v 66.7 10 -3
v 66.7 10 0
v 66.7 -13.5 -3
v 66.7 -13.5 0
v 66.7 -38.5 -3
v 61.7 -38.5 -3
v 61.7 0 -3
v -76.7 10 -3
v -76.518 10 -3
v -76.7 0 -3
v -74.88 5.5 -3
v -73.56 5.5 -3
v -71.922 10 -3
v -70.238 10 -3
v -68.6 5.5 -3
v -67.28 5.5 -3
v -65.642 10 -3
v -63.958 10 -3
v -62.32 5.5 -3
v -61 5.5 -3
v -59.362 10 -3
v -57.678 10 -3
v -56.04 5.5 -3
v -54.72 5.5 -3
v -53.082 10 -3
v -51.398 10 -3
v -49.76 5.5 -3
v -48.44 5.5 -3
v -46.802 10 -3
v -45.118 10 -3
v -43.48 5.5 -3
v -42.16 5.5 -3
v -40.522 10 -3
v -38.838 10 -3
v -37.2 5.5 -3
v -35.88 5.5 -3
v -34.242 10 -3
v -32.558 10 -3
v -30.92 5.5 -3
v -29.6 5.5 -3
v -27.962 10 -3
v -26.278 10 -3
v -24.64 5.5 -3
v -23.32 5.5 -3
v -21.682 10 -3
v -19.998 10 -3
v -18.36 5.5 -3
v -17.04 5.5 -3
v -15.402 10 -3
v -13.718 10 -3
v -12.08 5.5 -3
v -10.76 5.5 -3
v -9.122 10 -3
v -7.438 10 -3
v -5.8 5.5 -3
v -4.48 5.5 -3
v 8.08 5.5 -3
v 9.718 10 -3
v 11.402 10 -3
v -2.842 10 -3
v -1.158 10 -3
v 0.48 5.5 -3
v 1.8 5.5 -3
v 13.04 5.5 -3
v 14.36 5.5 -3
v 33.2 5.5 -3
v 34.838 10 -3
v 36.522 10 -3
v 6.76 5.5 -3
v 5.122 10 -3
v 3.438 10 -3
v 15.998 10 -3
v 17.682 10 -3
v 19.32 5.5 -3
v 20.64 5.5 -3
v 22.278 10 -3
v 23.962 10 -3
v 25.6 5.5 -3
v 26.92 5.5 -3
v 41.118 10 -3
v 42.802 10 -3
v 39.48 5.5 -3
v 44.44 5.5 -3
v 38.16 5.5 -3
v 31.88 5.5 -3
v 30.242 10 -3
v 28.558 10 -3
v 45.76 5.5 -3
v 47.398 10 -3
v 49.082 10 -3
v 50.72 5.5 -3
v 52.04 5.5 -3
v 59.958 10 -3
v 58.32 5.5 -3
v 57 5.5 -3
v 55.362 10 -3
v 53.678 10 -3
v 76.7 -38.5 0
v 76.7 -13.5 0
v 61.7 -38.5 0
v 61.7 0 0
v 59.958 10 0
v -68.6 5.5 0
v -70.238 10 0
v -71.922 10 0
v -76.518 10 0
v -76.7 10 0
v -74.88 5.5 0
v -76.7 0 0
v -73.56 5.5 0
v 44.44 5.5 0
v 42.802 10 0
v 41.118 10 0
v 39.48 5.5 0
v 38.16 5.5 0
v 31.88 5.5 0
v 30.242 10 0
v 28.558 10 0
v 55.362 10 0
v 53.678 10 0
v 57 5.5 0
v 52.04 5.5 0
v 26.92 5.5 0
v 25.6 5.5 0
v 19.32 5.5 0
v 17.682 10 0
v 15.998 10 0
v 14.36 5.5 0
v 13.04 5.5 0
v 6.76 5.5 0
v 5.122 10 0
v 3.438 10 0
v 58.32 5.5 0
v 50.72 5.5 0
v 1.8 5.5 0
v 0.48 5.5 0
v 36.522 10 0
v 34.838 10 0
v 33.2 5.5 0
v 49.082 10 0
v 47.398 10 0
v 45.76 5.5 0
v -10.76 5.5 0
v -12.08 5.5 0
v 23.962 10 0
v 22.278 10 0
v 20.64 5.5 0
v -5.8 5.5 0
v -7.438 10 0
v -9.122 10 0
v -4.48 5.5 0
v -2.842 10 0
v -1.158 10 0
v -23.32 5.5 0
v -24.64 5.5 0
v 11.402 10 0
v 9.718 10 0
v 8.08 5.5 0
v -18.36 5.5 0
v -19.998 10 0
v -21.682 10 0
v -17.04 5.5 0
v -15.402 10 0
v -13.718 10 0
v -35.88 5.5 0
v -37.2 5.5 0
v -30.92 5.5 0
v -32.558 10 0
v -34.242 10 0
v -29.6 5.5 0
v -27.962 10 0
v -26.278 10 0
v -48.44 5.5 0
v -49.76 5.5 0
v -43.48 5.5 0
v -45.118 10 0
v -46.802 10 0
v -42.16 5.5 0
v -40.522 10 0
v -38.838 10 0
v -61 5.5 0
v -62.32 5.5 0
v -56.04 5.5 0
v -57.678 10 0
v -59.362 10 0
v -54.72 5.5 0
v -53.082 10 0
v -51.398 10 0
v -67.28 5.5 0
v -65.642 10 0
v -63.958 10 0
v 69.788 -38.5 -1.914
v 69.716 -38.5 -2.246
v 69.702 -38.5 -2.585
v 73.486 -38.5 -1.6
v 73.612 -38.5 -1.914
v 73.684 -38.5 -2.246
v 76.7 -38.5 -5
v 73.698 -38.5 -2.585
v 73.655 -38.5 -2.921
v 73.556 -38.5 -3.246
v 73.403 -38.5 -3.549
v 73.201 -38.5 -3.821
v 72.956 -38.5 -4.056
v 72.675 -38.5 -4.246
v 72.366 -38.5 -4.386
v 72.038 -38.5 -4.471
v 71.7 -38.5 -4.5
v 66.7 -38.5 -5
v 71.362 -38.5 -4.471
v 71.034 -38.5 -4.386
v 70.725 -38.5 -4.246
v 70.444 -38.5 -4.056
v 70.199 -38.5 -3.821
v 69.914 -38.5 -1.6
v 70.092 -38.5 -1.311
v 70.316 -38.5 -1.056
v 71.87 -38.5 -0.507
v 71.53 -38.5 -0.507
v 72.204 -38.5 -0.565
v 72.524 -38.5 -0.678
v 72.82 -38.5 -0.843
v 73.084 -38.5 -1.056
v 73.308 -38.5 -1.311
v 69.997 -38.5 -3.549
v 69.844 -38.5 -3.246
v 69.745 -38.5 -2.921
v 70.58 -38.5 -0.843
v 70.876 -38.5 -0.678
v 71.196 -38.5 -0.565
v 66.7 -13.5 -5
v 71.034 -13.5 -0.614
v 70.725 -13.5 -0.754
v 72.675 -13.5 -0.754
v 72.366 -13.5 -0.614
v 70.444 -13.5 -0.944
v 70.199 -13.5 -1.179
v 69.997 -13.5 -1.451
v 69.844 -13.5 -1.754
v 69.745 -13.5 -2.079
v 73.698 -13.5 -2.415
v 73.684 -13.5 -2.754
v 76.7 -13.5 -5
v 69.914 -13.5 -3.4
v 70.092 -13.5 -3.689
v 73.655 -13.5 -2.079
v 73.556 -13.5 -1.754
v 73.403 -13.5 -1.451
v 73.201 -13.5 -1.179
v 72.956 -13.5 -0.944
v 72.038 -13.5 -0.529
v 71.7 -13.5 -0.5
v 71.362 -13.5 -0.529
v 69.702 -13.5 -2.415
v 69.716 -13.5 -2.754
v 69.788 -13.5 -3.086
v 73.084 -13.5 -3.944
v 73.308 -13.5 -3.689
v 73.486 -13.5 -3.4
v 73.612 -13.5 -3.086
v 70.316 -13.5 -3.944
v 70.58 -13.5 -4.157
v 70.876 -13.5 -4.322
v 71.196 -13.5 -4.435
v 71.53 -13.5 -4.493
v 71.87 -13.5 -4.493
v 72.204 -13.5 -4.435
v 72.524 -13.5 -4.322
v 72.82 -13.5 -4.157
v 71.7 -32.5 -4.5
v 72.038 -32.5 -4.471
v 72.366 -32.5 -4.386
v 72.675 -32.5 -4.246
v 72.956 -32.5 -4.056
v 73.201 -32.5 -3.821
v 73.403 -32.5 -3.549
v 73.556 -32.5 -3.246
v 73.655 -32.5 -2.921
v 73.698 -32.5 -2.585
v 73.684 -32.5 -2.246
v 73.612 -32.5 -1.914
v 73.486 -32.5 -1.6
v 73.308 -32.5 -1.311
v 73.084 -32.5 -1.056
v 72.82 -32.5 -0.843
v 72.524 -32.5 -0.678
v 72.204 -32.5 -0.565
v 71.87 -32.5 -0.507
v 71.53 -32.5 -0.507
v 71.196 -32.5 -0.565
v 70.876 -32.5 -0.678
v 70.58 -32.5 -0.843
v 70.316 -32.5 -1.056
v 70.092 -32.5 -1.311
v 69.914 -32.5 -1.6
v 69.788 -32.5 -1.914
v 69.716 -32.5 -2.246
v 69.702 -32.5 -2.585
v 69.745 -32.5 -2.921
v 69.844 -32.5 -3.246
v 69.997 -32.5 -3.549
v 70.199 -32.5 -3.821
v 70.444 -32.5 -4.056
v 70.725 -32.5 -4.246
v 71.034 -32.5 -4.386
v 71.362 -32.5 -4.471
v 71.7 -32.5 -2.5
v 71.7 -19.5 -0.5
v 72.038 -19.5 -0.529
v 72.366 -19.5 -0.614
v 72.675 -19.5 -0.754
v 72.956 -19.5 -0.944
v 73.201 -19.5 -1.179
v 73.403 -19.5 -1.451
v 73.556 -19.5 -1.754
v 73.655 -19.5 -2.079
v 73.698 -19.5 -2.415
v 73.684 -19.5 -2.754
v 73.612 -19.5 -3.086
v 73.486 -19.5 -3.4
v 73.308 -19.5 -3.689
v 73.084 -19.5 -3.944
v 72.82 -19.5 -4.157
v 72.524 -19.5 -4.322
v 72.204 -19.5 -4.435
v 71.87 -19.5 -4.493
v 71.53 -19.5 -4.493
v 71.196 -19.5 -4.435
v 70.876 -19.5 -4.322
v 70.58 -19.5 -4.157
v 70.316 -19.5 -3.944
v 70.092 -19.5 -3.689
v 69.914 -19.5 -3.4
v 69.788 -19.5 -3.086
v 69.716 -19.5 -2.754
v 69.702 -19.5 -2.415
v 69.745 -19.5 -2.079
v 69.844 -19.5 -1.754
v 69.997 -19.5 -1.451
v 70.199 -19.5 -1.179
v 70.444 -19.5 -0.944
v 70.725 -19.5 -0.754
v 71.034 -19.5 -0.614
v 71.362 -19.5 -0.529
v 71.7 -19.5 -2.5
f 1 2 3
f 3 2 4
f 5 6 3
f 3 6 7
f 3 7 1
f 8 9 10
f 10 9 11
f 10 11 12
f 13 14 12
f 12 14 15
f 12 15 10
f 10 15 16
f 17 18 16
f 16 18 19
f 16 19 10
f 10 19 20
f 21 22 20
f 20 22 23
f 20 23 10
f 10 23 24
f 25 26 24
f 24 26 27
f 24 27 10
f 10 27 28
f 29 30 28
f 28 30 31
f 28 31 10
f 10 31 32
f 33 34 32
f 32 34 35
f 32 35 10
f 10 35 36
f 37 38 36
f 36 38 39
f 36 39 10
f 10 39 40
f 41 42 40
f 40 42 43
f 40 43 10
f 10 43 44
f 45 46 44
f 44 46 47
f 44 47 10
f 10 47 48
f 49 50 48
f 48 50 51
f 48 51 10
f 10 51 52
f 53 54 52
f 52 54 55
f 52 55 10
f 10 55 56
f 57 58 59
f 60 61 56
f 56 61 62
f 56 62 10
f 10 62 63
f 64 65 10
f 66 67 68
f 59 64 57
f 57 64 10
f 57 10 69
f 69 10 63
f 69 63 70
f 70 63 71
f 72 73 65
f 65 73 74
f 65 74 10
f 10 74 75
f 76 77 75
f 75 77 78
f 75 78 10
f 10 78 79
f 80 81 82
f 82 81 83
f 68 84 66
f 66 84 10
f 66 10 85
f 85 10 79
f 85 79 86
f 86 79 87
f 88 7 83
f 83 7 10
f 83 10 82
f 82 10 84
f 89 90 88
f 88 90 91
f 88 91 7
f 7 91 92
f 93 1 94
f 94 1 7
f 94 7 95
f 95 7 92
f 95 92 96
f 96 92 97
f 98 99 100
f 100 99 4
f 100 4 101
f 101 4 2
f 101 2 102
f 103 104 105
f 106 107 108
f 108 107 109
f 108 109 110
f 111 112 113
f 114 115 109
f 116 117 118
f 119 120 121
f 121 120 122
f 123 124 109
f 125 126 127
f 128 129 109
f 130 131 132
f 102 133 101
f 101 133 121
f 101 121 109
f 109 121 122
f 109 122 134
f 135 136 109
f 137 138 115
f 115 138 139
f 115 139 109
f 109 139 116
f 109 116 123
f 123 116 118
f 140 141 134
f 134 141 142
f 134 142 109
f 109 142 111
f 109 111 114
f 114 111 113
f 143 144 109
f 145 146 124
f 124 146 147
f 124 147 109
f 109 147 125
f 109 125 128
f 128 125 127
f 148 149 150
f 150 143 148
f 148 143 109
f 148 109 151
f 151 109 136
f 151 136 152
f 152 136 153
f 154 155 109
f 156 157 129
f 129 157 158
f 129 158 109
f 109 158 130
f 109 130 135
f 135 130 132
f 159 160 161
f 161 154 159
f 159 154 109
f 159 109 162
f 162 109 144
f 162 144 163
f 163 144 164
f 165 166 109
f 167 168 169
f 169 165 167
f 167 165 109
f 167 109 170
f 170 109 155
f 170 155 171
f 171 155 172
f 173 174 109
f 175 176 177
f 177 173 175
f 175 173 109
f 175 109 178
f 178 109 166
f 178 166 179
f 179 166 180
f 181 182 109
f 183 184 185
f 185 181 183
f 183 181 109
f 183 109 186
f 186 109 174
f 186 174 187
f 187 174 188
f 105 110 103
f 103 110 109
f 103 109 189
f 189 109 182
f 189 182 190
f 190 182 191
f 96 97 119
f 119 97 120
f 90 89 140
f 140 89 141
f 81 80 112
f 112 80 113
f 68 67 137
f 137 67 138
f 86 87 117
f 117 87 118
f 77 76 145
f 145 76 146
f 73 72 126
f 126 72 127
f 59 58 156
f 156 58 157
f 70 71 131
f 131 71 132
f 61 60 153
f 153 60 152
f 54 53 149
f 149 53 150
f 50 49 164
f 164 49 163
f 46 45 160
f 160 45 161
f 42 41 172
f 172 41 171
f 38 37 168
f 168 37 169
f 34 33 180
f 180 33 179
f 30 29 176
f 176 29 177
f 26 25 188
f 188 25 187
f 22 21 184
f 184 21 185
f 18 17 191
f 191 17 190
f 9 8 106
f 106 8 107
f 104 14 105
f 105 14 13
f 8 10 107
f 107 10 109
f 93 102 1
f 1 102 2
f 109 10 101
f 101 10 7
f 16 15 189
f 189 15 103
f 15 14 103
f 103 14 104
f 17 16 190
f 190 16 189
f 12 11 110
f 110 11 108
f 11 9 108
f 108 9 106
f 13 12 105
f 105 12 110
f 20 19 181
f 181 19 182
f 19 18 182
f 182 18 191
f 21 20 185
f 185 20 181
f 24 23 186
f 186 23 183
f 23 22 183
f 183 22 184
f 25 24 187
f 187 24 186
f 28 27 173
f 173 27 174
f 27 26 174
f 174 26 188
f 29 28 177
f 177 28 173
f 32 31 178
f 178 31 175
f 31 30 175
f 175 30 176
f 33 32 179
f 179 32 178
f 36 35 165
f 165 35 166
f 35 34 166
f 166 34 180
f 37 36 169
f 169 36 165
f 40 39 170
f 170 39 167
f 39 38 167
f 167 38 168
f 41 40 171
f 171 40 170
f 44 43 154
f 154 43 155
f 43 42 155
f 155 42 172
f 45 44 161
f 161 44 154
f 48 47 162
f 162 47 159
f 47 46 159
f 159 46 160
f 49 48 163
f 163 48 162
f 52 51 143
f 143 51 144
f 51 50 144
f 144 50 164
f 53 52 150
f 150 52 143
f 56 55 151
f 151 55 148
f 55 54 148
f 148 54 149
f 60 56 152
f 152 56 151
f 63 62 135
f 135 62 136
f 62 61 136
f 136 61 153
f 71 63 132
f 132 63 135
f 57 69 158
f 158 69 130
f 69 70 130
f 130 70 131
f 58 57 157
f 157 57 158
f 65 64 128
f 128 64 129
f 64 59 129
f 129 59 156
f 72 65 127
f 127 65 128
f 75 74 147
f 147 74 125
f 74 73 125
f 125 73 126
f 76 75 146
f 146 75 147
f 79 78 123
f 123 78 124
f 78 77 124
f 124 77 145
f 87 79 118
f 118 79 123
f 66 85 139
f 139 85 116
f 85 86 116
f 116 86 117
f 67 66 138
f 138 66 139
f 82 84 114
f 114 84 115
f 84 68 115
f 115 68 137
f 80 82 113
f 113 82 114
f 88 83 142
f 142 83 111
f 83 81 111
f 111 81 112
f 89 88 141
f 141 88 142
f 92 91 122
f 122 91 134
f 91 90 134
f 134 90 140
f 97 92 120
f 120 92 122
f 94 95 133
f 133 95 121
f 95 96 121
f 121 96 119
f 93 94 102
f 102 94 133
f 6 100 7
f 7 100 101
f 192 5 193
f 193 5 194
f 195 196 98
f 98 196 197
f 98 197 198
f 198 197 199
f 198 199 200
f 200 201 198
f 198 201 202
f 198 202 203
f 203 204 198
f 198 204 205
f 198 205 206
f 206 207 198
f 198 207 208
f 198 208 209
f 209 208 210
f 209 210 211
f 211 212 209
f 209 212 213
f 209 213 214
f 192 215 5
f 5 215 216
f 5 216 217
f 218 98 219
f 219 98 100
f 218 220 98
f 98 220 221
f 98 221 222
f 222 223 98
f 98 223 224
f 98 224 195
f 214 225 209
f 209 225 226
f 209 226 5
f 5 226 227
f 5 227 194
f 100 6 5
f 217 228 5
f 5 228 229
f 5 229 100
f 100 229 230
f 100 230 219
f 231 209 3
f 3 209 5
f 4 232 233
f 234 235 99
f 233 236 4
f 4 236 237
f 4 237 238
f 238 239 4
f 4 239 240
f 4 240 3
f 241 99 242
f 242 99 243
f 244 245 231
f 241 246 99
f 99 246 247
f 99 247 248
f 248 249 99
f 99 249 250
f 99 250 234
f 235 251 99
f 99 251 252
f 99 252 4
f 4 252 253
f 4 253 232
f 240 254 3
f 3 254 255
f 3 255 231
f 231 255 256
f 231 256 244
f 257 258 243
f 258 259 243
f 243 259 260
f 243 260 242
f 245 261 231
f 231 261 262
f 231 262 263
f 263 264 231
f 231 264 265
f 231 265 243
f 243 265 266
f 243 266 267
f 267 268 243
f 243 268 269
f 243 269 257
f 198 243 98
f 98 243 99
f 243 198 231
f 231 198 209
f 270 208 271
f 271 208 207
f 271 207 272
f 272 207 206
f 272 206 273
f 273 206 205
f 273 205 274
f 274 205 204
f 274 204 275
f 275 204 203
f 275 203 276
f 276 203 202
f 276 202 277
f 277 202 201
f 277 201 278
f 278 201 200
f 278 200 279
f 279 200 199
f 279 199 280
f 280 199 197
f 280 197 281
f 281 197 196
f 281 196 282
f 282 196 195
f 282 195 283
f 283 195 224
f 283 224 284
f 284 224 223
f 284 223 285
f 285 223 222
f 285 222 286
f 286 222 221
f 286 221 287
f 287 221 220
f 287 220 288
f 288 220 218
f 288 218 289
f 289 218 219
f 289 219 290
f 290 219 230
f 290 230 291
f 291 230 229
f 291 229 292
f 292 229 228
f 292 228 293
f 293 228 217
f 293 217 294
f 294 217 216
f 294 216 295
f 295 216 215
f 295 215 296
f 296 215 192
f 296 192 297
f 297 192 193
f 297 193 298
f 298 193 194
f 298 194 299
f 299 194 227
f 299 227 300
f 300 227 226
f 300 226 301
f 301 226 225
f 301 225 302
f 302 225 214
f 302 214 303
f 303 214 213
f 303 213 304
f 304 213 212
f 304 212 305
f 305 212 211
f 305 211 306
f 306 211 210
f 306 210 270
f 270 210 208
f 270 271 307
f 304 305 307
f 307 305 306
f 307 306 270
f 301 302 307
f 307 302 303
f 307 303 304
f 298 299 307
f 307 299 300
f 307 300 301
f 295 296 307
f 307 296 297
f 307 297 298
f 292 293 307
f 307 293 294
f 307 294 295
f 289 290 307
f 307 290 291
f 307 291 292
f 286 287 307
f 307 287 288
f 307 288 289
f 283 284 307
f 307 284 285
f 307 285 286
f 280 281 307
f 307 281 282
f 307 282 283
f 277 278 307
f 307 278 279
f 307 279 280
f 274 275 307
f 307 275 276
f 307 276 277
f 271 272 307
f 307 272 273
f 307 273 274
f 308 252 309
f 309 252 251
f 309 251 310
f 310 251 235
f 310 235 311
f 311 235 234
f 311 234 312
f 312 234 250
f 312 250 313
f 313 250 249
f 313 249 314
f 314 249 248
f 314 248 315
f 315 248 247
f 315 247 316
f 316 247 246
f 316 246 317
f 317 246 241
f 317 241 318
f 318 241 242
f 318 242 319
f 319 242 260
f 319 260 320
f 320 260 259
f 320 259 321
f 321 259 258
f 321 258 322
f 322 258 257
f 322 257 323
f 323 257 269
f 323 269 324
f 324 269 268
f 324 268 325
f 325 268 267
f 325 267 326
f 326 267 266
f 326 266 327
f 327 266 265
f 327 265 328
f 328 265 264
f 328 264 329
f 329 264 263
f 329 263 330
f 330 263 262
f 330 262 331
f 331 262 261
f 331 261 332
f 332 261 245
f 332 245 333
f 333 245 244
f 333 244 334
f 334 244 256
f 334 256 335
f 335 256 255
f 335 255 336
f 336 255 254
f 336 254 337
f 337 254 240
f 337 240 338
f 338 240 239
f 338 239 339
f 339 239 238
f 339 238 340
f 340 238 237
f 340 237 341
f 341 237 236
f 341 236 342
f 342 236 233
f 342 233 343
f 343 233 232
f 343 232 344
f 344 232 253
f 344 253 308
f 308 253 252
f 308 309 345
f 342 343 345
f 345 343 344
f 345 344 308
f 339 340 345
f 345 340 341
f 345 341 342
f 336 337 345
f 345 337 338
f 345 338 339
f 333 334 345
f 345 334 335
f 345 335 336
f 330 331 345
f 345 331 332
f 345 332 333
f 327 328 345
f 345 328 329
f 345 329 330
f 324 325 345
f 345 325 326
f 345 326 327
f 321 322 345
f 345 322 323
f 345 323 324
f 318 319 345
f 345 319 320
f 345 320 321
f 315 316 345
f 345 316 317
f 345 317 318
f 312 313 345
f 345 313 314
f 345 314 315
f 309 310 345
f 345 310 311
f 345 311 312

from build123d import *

# Parameters (mm, degrees)
SKETCH_1_W                 = 153.4
SKETCH_1_H                 = 10
EXTRUDE_1_DEPTH            = 3
CUT_EXTRUDE_1_DEPTH        = 78.407299397
PATTERN_LINEAR_1_COUNT     = 21
PATTERN_LINEAR_1_PITCH     = 6.28
PATTERN_LINEAR_1_COL_COUNT = 2
PATTERN_LINEAR_1_COL_PITCH = 6.28
SKETCH_3_W                 = 10
SKETCH_3_H                 = 3
CUT_EXTRUDE_2_DEPTH        = 78.407299397
SKETCH_4_W                 = 5
SKETCH_4_H                 = 3
EXTRUDE_2_DEPTH            = 38.5
EXTRUDE_START              = -5
EXTRUDE_1_2_OUTLINE_W      = 10
EXTRUDE_1_2_OUTLINE_H      = 25
EXTRUDE_1_2_DEPTH          = 5
SKETCH_6_R                 = 2
CUT_EXTRUDE_3_DEPTH        = 6
CUT_EXTRUDE_START          = -6
SKETCH_7_R                 = 2
CUT_EXTRUDE_4_DEPTH        = 6


# Read off the part's stored shape, not the designer's step: 돌출-얇게1
with BuildPart() as part:
    # 스케치1 → Extrude 1 (new body)
    with BuildSketch(Plane.XY):
        with Locations((0, 5)):
            Rectangle(SKETCH_1_W, SKETCH_1_H)
    extrude(amount=-EXTRUDE_1_DEPTH)

    # 스케치2 → 컷-돌출1 (cut, through all)
    with BuildSketch(Plane.XY):
        Polygon((-67.94, 8), (-67.94, 10), (-70.237940469, 10), (-69.51, 8), align=None)
        Polygon((-65.642059531, 10), (-67.94, 10), (-67.94, 8), (-66.37, 8), align=None)
        Polygon((-66.37, 8), (-67.94, 8), (-67.94, 5.5), (-67.279925586, 5.5), align=None)
        Polygon((-67.94, 5.5), (-67.94, 8), (-69.51, 8), (-68.600074414, 5.5), align=None)
    cut_extrude_1 = extrude(amount=-CUT_EXTRUDE_1_DEPTH, mode=Mode.SUBTRACT)

    # 선형 패턴1: 컷-돌출1 ×21
    with Locations(*[(i * PATTERN_LINEAR_1_PITCH, 0, 0) for i in range(1, PATTERN_LINEAR_1_COUNT)]):
        add(cut_extrude_1, mode=Mode.SUBTRACT)

    # 선형 패턴1 col: 컷-돌출1 ×2
    with Locations(*[(-i * PATTERN_LINEAR_1_COL_PITCH, 0, 0) for i in range(1, PATTERN_LINEAR_1_COL_COUNT)]):
        add(cut_extrude_1, mode=Mode.SUBTRACT)

    # 스케치3 → 컷-돌출2 (cut, through all)
    with BuildSketch(Plane.XZ):
        with Locations((71.7, -1.5)):
            Rectangle(SKETCH_3_W, SKETCH_3_H)
    extrude(amount=-CUT_EXTRUDE_2_DEPTH, mode=Mode.SUBTRACT)

    # 스케치4 → 보스-돌출2 (add)
    with BuildSketch(Plane(origin=(0, 0, 0), x_dir=(-1, 0, 0), z_dir=(0, -1, 0))):
        with Locations((-64.2, 1.5)):
            Rectangle(SKETCH_4_W, SKETCH_4_H)
    extrude(amount=EXTRUDE_2_DEPTH)

    # Extrude 1 2 outline → Extrude 1 2 (add)
    with BuildSketch(Plane.XY.offset(EXTRUDE_START)):
        with Locations((71.7, -26)):
            Rectangle(EXTRUDE_1_2_OUTLINE_W, EXTRUDE_1_2_OUTLINE_H)
    extrude(amount=EXTRUDE_1_2_DEPTH)

    # 스케치6 → 컷-돌출3 (cut)
    with BuildSketch(Plane(origin=(0, -38.5, 0), x_dir=(-1, 0, 0), z_dir=(0, -1, 0))):
        with Locations(Location((-71.7, 2.5, 0), (0, 0, 90))):
            Circle(SKETCH_6_R)
    extrude(amount=-CUT_EXTRUDE_3_DEPTH, mode=Mode.SUBTRACT)

    # 스케치7 → 컷-돌출4 (cut)
    with BuildSketch(Plane(origin=(0, -13.5, 0), x_dir=(1, 0, 0), z_dir=(0, 1, 0)).offset(CUT_EXTRUDE_START)):
        with Locations(Location((71.7, 2.5, 0), (0, 0, 90))):
            Circle(SKETCH_7_R)
    extrude(amount=CUT_EXTRUDE_4_DEPTH, mode=Mode.SUBTRACT)


solid = part.part
